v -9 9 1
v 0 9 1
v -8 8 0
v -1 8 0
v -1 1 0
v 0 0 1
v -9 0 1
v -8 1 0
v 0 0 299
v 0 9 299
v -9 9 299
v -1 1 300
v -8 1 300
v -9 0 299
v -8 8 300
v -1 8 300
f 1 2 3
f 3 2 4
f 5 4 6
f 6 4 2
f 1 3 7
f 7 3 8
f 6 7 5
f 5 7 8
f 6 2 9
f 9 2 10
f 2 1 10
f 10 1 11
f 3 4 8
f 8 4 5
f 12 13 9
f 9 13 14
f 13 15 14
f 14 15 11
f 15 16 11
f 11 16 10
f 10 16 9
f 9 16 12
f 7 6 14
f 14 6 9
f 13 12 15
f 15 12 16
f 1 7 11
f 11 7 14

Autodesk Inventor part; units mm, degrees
ref_plane "YZ Plane" through (0, 0, 0) normal (1, 0, 0) x (0, 1, 0)
ref_plane "XZ Plane" through (0, 0, 0) normal (0, 1, 0) x (-1, 0, 0)
ref_plane "XY Plane" through (0, 0, 0) normal (0, 0, 1) x (1, 0, 0)
sketch "Sketch1" plane through (0, 0, 0) normal (0, 0, 1) x (1, 0, 0)
  line L0 (0, 0) -> (-9, 0)
  line L1 (-9, 0) -> (-9, 9)
  line L2 (-9, 9) -> (0, 9)
  line L3 (0, 9) -> (0, 0)
  dimension "d0" = 9
  dimension "d1" = 9
extrude "Extrusion1" add sketch "Sketch1" along normal blind 300
chamfer "Chamfer1" distance 1 angle 45 4 edges at (-4.5, 9, 300) (0, 4.5, 300) (-4.5, 0, 300) (-9, 4.5, 300)
chamfer "Chamfer2" distance 1 angle 45 4 edges at (-4.5, 9, 0) (0, 4.5, 0) (-4.5, 0, 0) (-9, 4.5, 0)
properties part number "Elbow_Both_Rod_V1"
